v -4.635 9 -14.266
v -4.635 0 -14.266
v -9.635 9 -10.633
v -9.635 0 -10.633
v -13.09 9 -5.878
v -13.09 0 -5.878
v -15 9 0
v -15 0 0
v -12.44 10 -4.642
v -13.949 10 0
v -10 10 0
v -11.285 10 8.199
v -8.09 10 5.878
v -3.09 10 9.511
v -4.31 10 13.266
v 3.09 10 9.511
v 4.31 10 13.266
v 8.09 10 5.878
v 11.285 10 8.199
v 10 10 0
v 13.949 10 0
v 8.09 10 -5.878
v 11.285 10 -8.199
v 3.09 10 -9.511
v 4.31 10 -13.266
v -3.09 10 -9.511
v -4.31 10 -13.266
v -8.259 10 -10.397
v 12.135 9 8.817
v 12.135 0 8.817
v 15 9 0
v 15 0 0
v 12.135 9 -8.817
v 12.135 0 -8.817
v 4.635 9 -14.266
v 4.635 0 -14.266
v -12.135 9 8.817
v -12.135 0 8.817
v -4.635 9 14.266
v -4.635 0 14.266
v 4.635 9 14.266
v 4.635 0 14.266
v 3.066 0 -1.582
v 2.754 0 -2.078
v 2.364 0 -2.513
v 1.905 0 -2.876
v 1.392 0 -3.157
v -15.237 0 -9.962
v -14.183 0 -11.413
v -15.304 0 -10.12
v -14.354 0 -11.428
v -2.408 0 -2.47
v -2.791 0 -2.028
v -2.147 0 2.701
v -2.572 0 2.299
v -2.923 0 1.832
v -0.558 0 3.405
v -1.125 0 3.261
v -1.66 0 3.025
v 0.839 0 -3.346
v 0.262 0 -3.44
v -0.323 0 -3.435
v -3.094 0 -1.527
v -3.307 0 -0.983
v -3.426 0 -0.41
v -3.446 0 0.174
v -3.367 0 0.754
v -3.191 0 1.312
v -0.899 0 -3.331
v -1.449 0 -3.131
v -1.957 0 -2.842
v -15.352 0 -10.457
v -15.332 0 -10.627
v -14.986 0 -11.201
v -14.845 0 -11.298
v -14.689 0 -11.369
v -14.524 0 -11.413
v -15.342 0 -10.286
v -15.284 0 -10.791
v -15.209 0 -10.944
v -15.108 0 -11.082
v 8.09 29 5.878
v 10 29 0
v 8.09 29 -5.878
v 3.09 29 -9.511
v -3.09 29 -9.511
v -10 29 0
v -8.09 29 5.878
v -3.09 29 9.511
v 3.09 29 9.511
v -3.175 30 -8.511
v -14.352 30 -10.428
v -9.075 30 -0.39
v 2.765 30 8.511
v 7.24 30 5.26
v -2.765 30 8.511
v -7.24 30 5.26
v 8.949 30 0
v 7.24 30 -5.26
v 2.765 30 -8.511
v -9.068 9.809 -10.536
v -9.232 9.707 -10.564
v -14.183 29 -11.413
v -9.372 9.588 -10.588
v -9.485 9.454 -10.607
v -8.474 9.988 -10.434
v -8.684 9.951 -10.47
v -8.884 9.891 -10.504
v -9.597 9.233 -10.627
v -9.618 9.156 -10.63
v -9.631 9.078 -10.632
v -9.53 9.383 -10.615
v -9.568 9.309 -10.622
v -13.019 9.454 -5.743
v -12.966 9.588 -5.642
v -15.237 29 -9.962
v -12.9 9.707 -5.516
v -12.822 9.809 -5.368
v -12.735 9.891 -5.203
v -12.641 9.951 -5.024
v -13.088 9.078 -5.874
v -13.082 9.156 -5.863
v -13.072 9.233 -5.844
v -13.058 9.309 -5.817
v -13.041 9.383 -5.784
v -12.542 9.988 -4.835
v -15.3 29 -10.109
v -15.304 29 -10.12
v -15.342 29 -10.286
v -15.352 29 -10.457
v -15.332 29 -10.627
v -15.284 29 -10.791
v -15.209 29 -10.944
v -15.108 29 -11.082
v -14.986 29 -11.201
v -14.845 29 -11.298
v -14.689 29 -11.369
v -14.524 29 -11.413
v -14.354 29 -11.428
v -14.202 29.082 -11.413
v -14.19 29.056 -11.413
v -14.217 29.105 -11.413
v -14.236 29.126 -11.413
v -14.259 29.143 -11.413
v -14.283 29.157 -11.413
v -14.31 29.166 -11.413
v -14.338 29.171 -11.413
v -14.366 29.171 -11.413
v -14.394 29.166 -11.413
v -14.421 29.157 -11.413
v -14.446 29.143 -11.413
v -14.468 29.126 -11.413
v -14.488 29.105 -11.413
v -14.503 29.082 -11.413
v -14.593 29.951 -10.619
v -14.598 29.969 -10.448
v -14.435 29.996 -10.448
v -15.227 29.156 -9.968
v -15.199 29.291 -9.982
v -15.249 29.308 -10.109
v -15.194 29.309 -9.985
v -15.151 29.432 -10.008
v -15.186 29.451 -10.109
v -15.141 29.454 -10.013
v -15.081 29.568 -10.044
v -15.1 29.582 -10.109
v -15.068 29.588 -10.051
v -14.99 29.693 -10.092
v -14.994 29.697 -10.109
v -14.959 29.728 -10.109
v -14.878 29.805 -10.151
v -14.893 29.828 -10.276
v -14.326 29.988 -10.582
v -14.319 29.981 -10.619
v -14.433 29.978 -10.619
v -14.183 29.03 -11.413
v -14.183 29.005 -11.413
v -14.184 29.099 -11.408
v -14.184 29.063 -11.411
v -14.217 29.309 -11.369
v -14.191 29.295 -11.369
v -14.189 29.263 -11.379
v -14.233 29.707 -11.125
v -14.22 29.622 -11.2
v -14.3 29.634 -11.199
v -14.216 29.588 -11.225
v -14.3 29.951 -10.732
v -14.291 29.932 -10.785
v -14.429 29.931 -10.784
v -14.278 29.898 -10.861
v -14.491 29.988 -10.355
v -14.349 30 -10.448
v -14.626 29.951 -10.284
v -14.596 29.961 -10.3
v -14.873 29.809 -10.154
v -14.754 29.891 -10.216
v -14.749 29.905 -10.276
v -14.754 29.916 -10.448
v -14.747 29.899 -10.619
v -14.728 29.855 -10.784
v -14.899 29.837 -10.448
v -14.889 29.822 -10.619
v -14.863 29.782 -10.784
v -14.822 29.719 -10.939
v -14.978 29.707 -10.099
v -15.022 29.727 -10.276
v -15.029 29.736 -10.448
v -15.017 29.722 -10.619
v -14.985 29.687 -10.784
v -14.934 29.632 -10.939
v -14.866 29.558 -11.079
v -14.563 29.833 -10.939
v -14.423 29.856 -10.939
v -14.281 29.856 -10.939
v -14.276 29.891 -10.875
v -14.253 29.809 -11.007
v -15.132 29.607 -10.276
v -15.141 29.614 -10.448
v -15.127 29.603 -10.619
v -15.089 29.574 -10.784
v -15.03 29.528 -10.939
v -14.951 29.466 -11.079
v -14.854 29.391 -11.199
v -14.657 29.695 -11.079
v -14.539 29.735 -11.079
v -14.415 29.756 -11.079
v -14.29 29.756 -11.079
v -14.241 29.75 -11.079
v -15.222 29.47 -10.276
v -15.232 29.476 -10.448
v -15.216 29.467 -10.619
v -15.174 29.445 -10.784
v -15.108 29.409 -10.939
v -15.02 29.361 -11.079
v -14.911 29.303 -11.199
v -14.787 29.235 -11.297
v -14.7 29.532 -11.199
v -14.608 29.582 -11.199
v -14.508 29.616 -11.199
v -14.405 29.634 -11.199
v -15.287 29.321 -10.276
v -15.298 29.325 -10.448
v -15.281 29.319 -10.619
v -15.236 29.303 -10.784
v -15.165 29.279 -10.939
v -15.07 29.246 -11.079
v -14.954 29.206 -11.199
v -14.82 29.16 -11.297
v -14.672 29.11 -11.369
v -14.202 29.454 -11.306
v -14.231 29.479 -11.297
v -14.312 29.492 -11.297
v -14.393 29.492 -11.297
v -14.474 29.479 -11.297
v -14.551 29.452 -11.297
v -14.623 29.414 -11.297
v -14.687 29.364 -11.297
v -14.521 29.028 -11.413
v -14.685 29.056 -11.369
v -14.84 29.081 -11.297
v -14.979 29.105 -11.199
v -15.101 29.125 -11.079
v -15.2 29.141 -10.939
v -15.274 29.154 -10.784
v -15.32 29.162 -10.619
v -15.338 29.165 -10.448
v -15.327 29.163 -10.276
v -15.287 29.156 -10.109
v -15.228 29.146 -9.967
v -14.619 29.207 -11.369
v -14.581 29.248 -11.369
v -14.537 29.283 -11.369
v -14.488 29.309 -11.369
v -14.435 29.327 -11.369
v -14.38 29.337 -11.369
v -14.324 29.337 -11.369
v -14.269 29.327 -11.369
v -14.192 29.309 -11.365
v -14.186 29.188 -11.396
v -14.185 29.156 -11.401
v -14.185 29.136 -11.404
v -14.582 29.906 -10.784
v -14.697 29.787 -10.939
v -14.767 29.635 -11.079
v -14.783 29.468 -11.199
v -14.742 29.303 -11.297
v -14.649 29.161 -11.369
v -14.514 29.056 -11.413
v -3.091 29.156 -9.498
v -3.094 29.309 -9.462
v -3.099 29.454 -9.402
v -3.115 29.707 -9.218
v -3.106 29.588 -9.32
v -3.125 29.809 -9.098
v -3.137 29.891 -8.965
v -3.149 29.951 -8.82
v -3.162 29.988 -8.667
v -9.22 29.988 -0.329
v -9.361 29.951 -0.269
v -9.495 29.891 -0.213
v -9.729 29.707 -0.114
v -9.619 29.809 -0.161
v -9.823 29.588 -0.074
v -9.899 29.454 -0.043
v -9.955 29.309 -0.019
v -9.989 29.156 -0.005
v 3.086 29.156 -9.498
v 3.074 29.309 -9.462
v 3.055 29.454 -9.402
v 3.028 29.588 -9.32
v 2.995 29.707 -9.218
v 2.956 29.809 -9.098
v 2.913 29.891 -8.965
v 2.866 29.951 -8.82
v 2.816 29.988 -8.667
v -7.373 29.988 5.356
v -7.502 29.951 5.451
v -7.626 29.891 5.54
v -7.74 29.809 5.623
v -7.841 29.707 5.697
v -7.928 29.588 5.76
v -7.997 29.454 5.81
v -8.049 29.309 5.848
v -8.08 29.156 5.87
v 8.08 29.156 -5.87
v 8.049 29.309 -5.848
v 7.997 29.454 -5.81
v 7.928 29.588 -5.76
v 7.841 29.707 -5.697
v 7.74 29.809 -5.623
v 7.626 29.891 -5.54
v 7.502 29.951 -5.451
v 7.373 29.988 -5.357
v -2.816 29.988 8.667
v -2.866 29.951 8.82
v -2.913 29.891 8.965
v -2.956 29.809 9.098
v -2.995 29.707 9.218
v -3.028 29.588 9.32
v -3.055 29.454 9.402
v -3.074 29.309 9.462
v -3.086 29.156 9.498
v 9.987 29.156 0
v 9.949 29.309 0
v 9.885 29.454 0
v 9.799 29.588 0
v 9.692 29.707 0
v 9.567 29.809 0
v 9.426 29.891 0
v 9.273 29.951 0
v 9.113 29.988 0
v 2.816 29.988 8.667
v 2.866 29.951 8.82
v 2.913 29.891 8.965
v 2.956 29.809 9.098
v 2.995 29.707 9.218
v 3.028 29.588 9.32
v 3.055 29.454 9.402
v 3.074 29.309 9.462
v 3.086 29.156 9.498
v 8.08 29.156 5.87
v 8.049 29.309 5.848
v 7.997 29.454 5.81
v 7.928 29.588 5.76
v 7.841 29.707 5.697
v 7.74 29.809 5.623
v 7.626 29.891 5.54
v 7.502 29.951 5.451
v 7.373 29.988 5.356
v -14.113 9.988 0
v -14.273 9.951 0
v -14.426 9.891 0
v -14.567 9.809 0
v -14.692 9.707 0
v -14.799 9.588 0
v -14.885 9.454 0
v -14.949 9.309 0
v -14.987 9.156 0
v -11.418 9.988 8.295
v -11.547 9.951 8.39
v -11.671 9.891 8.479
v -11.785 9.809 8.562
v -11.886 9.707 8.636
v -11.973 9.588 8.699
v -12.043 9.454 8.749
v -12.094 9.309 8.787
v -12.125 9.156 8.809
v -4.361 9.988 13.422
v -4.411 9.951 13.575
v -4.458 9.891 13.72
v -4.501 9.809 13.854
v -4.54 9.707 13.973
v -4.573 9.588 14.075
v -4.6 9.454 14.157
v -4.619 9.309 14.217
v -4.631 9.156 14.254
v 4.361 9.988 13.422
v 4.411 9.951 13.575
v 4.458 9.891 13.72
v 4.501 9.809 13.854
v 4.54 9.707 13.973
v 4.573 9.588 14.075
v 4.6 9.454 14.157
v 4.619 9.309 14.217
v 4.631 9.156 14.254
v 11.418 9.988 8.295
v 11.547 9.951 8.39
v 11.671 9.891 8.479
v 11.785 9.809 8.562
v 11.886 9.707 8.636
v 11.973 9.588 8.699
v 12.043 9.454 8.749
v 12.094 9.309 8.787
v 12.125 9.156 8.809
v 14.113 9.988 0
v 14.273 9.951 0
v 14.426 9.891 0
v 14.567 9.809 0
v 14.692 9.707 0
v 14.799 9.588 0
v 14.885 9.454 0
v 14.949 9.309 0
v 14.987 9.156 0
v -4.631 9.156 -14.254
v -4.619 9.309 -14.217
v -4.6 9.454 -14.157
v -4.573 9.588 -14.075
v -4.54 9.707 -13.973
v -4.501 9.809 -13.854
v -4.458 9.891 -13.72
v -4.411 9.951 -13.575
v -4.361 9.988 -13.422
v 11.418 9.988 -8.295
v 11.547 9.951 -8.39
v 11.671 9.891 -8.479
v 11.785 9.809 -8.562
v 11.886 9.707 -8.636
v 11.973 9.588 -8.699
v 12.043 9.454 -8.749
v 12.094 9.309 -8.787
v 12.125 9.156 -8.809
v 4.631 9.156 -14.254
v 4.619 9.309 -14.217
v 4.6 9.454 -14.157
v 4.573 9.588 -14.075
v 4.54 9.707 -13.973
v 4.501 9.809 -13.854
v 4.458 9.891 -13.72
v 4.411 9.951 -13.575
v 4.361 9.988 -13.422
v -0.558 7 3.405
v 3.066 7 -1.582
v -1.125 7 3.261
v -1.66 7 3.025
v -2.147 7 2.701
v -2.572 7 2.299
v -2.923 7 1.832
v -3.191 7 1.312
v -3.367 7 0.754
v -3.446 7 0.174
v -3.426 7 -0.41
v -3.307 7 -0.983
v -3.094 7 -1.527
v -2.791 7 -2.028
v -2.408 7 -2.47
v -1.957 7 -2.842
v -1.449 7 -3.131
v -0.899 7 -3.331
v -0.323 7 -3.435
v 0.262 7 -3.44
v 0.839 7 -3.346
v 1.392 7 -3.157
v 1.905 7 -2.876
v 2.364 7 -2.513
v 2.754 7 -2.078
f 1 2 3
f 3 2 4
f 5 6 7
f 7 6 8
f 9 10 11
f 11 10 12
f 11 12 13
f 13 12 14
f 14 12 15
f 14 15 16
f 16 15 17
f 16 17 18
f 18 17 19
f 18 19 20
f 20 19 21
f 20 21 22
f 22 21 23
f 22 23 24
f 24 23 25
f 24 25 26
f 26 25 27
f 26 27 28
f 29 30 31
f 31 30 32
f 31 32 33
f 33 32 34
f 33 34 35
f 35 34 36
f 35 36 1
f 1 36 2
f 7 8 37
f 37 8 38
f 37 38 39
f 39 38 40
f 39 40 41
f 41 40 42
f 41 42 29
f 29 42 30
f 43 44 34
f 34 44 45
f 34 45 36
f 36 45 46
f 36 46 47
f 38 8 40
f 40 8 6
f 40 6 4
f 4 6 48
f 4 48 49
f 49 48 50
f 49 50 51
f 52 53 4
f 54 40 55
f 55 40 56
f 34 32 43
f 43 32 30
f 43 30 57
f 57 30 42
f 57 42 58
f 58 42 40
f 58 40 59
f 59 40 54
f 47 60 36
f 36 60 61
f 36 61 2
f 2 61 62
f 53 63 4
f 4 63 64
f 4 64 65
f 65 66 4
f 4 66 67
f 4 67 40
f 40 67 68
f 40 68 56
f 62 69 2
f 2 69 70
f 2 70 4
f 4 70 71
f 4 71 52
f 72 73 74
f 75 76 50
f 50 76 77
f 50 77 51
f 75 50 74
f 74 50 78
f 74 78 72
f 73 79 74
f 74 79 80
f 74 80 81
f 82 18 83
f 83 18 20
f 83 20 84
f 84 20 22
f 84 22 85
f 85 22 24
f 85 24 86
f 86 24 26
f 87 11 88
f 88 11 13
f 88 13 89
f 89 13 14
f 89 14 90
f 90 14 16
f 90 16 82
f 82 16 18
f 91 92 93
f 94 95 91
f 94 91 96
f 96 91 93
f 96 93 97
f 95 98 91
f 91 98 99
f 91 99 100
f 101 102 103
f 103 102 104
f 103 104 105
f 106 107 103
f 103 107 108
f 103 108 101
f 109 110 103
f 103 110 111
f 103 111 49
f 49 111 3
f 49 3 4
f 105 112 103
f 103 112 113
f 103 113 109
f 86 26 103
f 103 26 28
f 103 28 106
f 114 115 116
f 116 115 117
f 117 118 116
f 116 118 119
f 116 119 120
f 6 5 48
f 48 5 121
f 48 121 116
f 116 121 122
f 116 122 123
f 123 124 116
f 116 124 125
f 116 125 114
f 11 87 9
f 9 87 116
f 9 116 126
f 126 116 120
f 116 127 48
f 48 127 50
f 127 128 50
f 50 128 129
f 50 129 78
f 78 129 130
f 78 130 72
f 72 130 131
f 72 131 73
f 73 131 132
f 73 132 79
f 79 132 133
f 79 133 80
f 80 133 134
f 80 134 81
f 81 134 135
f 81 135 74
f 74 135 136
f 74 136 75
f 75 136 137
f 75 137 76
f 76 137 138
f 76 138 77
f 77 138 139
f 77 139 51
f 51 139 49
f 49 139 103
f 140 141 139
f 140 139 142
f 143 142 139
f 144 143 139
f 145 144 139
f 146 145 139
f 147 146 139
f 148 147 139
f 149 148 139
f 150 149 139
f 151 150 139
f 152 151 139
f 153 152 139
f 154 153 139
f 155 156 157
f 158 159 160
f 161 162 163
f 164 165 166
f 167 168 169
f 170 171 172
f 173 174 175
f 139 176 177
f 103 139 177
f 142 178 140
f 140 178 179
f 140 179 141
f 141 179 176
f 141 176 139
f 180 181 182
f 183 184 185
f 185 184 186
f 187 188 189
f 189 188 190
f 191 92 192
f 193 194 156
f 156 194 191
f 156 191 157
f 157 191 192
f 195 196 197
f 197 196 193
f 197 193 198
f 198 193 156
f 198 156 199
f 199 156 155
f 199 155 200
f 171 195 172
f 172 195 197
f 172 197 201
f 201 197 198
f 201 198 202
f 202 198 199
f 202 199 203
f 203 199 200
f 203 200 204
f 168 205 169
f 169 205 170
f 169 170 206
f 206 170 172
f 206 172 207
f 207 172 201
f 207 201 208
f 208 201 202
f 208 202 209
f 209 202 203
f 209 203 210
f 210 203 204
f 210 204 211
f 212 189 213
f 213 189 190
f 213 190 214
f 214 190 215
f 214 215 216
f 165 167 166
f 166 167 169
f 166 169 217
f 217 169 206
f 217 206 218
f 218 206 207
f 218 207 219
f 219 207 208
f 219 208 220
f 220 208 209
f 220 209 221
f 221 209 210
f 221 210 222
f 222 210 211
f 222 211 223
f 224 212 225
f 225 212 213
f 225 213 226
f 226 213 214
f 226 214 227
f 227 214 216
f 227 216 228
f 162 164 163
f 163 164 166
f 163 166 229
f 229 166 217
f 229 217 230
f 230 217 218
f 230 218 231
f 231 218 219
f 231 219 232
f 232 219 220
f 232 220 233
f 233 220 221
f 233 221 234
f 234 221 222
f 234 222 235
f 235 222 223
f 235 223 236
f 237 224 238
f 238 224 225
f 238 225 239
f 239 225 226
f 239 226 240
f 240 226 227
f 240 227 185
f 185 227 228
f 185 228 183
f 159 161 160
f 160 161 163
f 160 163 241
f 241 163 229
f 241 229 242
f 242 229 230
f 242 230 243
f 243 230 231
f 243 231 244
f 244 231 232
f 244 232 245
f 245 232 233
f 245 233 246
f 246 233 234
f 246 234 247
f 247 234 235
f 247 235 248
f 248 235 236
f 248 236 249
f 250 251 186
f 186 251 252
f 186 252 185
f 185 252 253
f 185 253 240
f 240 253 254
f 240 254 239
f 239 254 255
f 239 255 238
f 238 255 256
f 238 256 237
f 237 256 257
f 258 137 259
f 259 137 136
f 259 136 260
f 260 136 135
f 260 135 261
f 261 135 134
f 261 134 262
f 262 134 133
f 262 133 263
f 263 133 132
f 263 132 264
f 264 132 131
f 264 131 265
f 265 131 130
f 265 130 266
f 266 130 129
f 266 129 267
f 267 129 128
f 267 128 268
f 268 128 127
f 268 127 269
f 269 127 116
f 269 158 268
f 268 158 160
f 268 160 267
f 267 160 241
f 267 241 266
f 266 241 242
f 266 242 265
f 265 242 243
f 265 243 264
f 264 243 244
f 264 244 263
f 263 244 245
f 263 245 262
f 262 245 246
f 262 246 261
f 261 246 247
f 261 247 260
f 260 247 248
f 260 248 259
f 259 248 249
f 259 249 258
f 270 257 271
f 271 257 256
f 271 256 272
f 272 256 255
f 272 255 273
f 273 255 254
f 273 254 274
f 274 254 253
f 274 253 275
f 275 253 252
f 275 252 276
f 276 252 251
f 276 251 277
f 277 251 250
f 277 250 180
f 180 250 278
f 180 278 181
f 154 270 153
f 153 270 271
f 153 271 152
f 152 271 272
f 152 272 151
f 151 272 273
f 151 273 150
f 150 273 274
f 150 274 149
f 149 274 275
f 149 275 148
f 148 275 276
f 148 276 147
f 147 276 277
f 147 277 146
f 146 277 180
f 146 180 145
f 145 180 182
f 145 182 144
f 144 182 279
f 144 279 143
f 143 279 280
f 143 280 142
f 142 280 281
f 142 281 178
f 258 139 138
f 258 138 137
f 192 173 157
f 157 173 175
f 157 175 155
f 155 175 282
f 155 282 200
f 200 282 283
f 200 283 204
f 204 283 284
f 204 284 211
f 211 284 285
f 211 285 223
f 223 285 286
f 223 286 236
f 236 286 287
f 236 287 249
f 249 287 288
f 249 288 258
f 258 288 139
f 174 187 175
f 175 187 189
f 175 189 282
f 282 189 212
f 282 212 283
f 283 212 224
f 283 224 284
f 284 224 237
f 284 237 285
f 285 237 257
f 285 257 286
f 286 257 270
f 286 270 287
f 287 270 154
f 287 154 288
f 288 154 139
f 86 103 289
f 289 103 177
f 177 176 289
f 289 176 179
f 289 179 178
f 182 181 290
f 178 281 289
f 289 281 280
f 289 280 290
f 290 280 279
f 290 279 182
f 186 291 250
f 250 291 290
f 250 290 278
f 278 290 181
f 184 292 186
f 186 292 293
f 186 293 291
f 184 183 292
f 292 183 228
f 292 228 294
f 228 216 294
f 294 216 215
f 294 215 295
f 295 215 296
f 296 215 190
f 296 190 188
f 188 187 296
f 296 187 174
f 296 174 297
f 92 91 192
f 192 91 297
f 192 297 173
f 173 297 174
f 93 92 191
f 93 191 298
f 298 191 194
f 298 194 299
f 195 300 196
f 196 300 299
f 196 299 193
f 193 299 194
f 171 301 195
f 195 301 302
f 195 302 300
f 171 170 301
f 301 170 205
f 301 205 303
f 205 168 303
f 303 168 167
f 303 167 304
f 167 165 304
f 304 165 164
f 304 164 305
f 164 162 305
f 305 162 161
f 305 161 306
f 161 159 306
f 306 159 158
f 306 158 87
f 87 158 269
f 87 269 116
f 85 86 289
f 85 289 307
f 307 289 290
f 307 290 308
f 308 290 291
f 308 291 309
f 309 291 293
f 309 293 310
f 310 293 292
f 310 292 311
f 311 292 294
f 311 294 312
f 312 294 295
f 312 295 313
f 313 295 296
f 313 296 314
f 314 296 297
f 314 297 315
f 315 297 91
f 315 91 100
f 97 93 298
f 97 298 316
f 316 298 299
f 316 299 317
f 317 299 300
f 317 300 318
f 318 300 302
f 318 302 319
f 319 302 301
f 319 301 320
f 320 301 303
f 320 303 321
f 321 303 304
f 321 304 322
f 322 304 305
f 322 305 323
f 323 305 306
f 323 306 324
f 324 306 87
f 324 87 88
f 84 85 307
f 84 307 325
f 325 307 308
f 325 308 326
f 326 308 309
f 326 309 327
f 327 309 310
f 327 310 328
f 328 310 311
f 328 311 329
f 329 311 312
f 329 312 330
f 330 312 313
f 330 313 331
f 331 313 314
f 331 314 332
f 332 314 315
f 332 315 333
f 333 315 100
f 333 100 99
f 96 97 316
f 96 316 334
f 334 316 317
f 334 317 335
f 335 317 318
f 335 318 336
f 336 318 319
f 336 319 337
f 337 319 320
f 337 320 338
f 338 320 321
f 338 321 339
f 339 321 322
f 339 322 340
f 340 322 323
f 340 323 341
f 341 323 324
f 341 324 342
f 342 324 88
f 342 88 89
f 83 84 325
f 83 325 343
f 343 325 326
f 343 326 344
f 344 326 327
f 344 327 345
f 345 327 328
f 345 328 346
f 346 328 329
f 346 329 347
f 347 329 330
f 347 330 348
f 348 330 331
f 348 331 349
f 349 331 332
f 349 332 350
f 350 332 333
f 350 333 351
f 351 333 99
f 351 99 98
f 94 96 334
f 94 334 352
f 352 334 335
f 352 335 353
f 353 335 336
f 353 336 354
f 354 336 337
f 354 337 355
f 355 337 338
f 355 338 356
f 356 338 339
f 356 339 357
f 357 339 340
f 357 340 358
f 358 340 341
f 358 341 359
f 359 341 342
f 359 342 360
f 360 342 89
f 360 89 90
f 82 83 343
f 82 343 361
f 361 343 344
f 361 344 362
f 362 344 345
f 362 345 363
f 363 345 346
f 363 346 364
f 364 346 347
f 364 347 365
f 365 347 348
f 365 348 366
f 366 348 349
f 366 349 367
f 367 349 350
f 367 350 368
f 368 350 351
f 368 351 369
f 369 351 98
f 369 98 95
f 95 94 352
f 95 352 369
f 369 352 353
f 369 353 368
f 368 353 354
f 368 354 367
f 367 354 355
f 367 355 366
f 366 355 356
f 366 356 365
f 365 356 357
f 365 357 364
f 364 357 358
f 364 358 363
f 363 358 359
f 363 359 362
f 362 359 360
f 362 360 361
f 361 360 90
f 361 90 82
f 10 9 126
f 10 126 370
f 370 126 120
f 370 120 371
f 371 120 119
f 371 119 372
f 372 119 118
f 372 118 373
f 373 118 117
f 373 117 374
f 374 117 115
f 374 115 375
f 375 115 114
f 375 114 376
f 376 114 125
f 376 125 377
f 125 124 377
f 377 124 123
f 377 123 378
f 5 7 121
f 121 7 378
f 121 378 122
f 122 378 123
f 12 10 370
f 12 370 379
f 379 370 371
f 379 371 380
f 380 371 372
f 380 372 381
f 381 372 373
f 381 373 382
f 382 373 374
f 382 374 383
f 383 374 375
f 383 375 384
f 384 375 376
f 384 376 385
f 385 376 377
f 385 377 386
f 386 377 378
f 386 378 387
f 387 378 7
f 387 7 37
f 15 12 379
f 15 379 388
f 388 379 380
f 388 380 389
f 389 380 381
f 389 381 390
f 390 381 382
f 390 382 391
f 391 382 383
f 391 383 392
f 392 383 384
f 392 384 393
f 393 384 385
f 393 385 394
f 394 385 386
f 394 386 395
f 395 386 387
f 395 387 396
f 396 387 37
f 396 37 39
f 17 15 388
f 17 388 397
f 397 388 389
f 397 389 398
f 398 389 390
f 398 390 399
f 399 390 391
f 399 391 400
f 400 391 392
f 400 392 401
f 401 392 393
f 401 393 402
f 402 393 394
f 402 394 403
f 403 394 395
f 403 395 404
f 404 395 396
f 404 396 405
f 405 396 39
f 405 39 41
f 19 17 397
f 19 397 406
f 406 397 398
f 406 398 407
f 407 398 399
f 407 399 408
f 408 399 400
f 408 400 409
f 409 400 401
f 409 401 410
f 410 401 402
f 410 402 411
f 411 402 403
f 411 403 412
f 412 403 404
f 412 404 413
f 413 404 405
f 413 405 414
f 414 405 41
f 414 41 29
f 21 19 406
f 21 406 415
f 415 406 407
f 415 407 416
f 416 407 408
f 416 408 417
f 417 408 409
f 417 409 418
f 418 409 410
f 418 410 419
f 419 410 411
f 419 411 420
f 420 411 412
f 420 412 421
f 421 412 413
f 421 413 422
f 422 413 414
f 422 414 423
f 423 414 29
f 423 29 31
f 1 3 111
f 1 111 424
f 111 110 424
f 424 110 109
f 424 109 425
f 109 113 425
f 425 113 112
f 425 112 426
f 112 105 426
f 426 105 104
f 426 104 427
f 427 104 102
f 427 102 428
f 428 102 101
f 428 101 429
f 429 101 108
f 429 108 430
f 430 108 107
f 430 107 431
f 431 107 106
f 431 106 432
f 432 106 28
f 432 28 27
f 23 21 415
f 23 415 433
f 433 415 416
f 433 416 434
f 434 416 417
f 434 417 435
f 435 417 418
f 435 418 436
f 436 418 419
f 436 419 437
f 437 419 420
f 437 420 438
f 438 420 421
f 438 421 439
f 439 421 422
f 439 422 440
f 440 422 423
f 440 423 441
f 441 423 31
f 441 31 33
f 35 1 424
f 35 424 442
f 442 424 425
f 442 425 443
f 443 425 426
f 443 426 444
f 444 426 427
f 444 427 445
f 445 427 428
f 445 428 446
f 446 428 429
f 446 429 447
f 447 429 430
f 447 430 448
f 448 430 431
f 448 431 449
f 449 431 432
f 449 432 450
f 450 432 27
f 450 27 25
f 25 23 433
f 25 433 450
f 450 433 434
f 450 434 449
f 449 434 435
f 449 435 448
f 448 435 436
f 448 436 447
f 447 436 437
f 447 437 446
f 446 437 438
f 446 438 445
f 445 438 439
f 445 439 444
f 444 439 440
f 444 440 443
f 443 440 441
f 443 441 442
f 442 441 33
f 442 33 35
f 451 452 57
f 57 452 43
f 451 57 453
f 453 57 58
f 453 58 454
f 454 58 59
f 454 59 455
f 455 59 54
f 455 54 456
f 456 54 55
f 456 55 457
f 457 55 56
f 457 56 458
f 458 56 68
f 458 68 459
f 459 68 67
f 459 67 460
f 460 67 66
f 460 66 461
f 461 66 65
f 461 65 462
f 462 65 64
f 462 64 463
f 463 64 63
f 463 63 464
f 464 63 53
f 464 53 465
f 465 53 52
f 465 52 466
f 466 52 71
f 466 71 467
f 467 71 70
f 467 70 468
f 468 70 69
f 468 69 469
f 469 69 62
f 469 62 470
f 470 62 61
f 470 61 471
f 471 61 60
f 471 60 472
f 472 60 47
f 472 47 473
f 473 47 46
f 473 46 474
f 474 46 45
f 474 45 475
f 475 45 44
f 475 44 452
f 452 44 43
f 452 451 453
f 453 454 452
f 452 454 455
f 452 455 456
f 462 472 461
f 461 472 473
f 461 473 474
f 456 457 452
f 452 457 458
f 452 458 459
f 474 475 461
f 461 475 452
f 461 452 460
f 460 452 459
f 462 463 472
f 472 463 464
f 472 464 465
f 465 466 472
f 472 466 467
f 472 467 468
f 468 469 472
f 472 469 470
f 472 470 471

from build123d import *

# Parameters (mm, degrees)
BOSS_EXTRUDE1_DEPTH = 10
BOSS_EXTRUDE2_DEPTH = 20
BOSS_EXTRUDE3_REACH = 38.449
FILLET1_R           = 1
CUT_EXTRUDE1_DEPTH  = 7


with BuildPart() as part:
    # Sketch1 → Boss-Extrude1 (new body)
    with BuildSketch(Plane(origin=(0, 0, 0), x_dir=(1, 0, 0), z_dir=(0, 1, 0))):
        Polygon((15, 0), (12.135254916, 8.816778784), (4.635254916, 14.265847744), (-4.635254916, 14.265847744), (-12.135254916, 8.816778784), (-15, 0), (-12.135254916, -8.816778784), (-4.635254916, -14.265847744), (4.635254916, -14.265847744), (12.135254916, -8.816778784), align=None)
    extrude(amount=BOSS_EXTRUDE1_DEPTH)

    # Sketch2 → Boss-Extrude2 (add)
    with BuildSketch(Plane(origin=(0, 10, 0), x_dir=(1, 0, 0), z_dir=(0, 1, 0))):
        Polygon((10, 0), (8.090169944, 5.877852523), (3.090169944, 9.510565163), (-3.090169944, 9.510565163), (-8.090169944, 5.877852523), (-10, 0), (-8.090169944, -5.877852523), (-3.090169944, -9.510565163), (3.090169944, -9.510565163), (8.090169944, -5.877852523), align=None)
    extrude(amount=BOSS_EXTRUDE2_DEPTH)

    # Boss-Extrude3: up to this face of the body (flat: up to its plane)
    boss_extrude3_end = Plane(part.part.faces().sort_by_distance((0, 0, 0))[0])
    # Sketch3 → Boss-Extrude3 (add, up to the picked face)
    with BuildSketch(Plane(origin=(0, 30, 0), x_dir=(1, 0, 0), z_dir=(0, 1, 0)), mode=Mode.PRIVATE) as boss_extrude3_sk1:
        Polygon((-16.180339887, 11.755705046), (-10, 0), (-8.090169944, 5.877852523), align=None)
    boss_extrude3_tool1 = split(extrude(boss_extrude3_sk1.sketch, amount=-BOSS_EXTRUDE3_REACH, mode=Mode.PRIVATE), bisect_by=boss_extrude3_end, keep=Keep.BOTH, mode=Mode.PRIVATE)
    # Sketch3 → Boss-Extrude3 (add, up to the picked face)
    with BuildSketch(Plane(origin=(0, 30, 0), x_dir=(1, 0, 0), z_dir=(0, 1, 0)), mode=Mode.PRIVATE) as boss_extrude3_sk2:
        Polygon((-3.090169944, 9.510565163), (-16.180339887, 11.755705046), (-8.090169944, 5.877852523), align=None)
    boss_extrude3_tool2 = split(extrude(boss_extrude3_sk2.sketch, amount=-BOSS_EXTRUDE3_REACH, mode=Mode.PRIVATE), bisect_by=boss_extrude3_end, keep=Keep.BOTH, mode=Mode.PRIVATE)
    add(boss_extrude3_tool1.solids().sort_by(Axis((-11.423503, 30, -5.877853), (0, -1, 0)))[0])
    add(boss_extrude3_tool2.solids().sort_by(Axis((-9.120227, 30, -9.048041), (0, -1, 0)))[0])

    # Fillet1
    fillet1_edges = [part.edges().sort_by_distance(p)[0] for p in [
        (8.385254916, 10, -11.541313264),
        (0, 10, -14.265847744),
        (-7.135254916, 10, -12.449491424),
        (-13.567627458, 10, 4.408389392),
        (-8.385254916, 10, 11.541313264),
        (0, 10, 14.265847744),
        (9.045084972, 30, 2.938926261),
        (9.045084972, 30, -2.938926261),
        (5.590169944, 30, -7.694208843),
        (0, 30, -9.510565163),
        (-9.045084972, 30, 2.938926261),
        (-5.590169944, 30, 7.694208843),
        (0, 30, 9.510565163),
        (5.590169944, 30, 7.694208843),
        (8.385254916, 10, 11.541313264),
        (13.567627458, 10, 4.408389392),
        (-14.045084972, 10, -2.938926261),
        (-16.180339887, 15, -11.755705046),
        (-9.635254916, 30, -10.633135104),
        (-13.090169944, 30, -5.877852523),
        (13.567627458, 10, -4.408389392),
    ]]
    fillet(fillet1_edges, radius=FILLET1_R)

    # Sketch4 → Cut-Extrude1 (cut)
    with BuildSketch(Plane(origin=(0, 0, 0), x_dir=(-1, 0, 0), z_dir=(0, -1, 0))):
        with BuildLine():
            ThreePointArc((3.45, 0), (3.281144981, 1.066108631), (2.791108631, 2.02785912))
            Line((2.791108631, 2.02785912), (-1.253976341, -0.911067141))
            Line((-1.253976341, -0.911067141), (0.557699479, -3.404624985))
            ThreePointArc((0.557699479, -3.404624985), (2.629312001, -2.233655837), (3.45, 0))
        make_face()
        with BuildLine():
            Line((-1.253976341, -0.911067141), (2.791108631, 2.02785912))
            ThreePointArc((2.791108631, 2.02785912), (-0.261594714, 3.440068052), (-3.065652161, 1.582490703))
            Line((-3.065652161, 1.582490703), (-1.253976341, -0.911067141))
        make_face()
    extrude(amount=-CUT_EXTRUDE1_DEPTH, mode=Mode.SUBTRACT)


solid = part.part
